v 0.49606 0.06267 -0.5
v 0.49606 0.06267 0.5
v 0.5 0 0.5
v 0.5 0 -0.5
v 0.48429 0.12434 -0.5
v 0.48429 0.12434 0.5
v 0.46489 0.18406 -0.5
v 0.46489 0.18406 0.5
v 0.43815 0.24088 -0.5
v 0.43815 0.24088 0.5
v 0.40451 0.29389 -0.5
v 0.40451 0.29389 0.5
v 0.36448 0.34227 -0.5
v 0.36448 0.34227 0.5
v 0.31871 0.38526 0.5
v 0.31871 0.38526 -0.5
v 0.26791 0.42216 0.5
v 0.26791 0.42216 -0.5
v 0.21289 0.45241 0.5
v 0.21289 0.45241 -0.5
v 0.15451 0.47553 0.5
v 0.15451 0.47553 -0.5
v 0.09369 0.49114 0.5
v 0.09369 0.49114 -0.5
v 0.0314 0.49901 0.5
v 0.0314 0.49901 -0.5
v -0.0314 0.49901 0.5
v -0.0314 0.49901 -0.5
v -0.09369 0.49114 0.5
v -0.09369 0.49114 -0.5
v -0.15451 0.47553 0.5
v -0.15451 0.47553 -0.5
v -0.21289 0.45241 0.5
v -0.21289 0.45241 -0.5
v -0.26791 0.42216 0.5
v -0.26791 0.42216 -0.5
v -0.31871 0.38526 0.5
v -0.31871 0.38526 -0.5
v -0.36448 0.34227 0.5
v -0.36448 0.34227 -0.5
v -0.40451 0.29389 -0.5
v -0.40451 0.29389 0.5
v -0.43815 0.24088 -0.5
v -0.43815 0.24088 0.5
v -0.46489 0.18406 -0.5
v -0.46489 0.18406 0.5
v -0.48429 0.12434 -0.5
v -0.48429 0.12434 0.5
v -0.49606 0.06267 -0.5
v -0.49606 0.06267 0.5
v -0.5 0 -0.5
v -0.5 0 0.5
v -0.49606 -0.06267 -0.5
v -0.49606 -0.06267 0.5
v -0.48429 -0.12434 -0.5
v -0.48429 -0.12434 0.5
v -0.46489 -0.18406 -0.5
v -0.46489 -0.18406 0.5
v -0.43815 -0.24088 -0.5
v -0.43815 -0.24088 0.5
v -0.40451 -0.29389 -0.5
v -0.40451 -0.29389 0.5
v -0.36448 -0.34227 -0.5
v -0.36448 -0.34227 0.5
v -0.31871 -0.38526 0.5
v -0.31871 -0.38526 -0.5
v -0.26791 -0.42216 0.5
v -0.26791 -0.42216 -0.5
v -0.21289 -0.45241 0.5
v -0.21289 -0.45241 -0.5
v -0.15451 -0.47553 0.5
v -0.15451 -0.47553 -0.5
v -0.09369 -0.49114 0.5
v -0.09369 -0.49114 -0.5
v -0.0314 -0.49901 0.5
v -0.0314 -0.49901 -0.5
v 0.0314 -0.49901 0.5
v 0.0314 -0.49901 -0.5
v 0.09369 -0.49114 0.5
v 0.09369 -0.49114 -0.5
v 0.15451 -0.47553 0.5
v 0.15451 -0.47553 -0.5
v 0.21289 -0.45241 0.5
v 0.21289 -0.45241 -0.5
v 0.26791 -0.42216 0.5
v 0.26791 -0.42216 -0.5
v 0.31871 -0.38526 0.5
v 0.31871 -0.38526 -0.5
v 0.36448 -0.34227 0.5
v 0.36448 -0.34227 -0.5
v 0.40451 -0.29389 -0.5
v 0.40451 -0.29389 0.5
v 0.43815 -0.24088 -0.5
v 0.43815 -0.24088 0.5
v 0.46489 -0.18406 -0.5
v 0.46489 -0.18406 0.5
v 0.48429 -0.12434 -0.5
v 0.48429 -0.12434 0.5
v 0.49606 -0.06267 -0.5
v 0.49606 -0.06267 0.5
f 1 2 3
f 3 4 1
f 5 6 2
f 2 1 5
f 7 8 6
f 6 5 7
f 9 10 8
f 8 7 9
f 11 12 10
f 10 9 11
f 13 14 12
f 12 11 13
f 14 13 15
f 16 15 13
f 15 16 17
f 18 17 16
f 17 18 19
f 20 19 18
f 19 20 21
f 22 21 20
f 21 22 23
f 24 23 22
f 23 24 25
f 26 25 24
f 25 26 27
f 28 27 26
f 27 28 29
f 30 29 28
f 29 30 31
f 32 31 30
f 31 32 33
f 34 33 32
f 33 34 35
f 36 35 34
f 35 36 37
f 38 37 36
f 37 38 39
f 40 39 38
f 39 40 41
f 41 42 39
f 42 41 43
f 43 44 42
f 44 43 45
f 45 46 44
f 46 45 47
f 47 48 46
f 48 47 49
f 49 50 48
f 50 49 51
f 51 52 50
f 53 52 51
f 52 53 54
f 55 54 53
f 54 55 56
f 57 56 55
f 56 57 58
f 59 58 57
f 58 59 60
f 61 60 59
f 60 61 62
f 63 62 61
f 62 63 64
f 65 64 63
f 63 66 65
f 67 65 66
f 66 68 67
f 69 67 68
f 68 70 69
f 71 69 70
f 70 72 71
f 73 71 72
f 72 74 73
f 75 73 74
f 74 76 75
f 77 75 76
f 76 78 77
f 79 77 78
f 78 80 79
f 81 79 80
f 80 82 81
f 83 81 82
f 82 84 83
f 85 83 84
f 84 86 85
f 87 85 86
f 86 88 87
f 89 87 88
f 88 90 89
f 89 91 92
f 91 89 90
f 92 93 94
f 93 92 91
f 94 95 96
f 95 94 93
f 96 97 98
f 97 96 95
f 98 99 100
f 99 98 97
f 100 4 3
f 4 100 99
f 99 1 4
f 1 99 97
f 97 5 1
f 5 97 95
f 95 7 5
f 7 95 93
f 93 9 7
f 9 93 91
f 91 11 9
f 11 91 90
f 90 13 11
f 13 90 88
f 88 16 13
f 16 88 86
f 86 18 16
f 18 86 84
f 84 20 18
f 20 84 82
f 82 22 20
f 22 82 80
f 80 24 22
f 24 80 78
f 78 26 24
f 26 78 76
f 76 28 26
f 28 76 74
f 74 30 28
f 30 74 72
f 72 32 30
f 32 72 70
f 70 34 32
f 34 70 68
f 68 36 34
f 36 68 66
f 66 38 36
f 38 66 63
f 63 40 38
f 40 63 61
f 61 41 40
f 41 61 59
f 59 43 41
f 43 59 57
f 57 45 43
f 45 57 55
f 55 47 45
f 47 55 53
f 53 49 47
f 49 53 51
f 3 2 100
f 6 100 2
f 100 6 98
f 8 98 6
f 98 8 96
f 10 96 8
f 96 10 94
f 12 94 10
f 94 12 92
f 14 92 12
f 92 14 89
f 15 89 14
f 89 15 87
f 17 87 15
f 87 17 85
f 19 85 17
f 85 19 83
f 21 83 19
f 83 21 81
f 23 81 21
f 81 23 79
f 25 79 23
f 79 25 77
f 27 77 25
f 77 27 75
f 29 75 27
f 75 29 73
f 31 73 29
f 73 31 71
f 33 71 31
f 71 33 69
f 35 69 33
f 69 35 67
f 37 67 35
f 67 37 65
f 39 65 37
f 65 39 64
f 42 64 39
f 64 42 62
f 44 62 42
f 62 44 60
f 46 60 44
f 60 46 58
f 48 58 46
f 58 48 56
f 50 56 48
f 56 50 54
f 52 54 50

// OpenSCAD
rotate([0.0000000000, 0.0000000000, 0.0000000000]) {
  scale([1.0000000000, 0.9980000000, 1.0000000000]) {
    translate([-0.0000000000, -0.0000000000, -0.0000000000]) {
      scale([1.0000000000, 1.0020040080, 1.0000000000]) {
        rotate([0.0000000000, 0.0000000000, -0.0000000000]) {
          cylinder($fn = 50, center = true, r = 0.5);
        }
      }
    }
  }
}
